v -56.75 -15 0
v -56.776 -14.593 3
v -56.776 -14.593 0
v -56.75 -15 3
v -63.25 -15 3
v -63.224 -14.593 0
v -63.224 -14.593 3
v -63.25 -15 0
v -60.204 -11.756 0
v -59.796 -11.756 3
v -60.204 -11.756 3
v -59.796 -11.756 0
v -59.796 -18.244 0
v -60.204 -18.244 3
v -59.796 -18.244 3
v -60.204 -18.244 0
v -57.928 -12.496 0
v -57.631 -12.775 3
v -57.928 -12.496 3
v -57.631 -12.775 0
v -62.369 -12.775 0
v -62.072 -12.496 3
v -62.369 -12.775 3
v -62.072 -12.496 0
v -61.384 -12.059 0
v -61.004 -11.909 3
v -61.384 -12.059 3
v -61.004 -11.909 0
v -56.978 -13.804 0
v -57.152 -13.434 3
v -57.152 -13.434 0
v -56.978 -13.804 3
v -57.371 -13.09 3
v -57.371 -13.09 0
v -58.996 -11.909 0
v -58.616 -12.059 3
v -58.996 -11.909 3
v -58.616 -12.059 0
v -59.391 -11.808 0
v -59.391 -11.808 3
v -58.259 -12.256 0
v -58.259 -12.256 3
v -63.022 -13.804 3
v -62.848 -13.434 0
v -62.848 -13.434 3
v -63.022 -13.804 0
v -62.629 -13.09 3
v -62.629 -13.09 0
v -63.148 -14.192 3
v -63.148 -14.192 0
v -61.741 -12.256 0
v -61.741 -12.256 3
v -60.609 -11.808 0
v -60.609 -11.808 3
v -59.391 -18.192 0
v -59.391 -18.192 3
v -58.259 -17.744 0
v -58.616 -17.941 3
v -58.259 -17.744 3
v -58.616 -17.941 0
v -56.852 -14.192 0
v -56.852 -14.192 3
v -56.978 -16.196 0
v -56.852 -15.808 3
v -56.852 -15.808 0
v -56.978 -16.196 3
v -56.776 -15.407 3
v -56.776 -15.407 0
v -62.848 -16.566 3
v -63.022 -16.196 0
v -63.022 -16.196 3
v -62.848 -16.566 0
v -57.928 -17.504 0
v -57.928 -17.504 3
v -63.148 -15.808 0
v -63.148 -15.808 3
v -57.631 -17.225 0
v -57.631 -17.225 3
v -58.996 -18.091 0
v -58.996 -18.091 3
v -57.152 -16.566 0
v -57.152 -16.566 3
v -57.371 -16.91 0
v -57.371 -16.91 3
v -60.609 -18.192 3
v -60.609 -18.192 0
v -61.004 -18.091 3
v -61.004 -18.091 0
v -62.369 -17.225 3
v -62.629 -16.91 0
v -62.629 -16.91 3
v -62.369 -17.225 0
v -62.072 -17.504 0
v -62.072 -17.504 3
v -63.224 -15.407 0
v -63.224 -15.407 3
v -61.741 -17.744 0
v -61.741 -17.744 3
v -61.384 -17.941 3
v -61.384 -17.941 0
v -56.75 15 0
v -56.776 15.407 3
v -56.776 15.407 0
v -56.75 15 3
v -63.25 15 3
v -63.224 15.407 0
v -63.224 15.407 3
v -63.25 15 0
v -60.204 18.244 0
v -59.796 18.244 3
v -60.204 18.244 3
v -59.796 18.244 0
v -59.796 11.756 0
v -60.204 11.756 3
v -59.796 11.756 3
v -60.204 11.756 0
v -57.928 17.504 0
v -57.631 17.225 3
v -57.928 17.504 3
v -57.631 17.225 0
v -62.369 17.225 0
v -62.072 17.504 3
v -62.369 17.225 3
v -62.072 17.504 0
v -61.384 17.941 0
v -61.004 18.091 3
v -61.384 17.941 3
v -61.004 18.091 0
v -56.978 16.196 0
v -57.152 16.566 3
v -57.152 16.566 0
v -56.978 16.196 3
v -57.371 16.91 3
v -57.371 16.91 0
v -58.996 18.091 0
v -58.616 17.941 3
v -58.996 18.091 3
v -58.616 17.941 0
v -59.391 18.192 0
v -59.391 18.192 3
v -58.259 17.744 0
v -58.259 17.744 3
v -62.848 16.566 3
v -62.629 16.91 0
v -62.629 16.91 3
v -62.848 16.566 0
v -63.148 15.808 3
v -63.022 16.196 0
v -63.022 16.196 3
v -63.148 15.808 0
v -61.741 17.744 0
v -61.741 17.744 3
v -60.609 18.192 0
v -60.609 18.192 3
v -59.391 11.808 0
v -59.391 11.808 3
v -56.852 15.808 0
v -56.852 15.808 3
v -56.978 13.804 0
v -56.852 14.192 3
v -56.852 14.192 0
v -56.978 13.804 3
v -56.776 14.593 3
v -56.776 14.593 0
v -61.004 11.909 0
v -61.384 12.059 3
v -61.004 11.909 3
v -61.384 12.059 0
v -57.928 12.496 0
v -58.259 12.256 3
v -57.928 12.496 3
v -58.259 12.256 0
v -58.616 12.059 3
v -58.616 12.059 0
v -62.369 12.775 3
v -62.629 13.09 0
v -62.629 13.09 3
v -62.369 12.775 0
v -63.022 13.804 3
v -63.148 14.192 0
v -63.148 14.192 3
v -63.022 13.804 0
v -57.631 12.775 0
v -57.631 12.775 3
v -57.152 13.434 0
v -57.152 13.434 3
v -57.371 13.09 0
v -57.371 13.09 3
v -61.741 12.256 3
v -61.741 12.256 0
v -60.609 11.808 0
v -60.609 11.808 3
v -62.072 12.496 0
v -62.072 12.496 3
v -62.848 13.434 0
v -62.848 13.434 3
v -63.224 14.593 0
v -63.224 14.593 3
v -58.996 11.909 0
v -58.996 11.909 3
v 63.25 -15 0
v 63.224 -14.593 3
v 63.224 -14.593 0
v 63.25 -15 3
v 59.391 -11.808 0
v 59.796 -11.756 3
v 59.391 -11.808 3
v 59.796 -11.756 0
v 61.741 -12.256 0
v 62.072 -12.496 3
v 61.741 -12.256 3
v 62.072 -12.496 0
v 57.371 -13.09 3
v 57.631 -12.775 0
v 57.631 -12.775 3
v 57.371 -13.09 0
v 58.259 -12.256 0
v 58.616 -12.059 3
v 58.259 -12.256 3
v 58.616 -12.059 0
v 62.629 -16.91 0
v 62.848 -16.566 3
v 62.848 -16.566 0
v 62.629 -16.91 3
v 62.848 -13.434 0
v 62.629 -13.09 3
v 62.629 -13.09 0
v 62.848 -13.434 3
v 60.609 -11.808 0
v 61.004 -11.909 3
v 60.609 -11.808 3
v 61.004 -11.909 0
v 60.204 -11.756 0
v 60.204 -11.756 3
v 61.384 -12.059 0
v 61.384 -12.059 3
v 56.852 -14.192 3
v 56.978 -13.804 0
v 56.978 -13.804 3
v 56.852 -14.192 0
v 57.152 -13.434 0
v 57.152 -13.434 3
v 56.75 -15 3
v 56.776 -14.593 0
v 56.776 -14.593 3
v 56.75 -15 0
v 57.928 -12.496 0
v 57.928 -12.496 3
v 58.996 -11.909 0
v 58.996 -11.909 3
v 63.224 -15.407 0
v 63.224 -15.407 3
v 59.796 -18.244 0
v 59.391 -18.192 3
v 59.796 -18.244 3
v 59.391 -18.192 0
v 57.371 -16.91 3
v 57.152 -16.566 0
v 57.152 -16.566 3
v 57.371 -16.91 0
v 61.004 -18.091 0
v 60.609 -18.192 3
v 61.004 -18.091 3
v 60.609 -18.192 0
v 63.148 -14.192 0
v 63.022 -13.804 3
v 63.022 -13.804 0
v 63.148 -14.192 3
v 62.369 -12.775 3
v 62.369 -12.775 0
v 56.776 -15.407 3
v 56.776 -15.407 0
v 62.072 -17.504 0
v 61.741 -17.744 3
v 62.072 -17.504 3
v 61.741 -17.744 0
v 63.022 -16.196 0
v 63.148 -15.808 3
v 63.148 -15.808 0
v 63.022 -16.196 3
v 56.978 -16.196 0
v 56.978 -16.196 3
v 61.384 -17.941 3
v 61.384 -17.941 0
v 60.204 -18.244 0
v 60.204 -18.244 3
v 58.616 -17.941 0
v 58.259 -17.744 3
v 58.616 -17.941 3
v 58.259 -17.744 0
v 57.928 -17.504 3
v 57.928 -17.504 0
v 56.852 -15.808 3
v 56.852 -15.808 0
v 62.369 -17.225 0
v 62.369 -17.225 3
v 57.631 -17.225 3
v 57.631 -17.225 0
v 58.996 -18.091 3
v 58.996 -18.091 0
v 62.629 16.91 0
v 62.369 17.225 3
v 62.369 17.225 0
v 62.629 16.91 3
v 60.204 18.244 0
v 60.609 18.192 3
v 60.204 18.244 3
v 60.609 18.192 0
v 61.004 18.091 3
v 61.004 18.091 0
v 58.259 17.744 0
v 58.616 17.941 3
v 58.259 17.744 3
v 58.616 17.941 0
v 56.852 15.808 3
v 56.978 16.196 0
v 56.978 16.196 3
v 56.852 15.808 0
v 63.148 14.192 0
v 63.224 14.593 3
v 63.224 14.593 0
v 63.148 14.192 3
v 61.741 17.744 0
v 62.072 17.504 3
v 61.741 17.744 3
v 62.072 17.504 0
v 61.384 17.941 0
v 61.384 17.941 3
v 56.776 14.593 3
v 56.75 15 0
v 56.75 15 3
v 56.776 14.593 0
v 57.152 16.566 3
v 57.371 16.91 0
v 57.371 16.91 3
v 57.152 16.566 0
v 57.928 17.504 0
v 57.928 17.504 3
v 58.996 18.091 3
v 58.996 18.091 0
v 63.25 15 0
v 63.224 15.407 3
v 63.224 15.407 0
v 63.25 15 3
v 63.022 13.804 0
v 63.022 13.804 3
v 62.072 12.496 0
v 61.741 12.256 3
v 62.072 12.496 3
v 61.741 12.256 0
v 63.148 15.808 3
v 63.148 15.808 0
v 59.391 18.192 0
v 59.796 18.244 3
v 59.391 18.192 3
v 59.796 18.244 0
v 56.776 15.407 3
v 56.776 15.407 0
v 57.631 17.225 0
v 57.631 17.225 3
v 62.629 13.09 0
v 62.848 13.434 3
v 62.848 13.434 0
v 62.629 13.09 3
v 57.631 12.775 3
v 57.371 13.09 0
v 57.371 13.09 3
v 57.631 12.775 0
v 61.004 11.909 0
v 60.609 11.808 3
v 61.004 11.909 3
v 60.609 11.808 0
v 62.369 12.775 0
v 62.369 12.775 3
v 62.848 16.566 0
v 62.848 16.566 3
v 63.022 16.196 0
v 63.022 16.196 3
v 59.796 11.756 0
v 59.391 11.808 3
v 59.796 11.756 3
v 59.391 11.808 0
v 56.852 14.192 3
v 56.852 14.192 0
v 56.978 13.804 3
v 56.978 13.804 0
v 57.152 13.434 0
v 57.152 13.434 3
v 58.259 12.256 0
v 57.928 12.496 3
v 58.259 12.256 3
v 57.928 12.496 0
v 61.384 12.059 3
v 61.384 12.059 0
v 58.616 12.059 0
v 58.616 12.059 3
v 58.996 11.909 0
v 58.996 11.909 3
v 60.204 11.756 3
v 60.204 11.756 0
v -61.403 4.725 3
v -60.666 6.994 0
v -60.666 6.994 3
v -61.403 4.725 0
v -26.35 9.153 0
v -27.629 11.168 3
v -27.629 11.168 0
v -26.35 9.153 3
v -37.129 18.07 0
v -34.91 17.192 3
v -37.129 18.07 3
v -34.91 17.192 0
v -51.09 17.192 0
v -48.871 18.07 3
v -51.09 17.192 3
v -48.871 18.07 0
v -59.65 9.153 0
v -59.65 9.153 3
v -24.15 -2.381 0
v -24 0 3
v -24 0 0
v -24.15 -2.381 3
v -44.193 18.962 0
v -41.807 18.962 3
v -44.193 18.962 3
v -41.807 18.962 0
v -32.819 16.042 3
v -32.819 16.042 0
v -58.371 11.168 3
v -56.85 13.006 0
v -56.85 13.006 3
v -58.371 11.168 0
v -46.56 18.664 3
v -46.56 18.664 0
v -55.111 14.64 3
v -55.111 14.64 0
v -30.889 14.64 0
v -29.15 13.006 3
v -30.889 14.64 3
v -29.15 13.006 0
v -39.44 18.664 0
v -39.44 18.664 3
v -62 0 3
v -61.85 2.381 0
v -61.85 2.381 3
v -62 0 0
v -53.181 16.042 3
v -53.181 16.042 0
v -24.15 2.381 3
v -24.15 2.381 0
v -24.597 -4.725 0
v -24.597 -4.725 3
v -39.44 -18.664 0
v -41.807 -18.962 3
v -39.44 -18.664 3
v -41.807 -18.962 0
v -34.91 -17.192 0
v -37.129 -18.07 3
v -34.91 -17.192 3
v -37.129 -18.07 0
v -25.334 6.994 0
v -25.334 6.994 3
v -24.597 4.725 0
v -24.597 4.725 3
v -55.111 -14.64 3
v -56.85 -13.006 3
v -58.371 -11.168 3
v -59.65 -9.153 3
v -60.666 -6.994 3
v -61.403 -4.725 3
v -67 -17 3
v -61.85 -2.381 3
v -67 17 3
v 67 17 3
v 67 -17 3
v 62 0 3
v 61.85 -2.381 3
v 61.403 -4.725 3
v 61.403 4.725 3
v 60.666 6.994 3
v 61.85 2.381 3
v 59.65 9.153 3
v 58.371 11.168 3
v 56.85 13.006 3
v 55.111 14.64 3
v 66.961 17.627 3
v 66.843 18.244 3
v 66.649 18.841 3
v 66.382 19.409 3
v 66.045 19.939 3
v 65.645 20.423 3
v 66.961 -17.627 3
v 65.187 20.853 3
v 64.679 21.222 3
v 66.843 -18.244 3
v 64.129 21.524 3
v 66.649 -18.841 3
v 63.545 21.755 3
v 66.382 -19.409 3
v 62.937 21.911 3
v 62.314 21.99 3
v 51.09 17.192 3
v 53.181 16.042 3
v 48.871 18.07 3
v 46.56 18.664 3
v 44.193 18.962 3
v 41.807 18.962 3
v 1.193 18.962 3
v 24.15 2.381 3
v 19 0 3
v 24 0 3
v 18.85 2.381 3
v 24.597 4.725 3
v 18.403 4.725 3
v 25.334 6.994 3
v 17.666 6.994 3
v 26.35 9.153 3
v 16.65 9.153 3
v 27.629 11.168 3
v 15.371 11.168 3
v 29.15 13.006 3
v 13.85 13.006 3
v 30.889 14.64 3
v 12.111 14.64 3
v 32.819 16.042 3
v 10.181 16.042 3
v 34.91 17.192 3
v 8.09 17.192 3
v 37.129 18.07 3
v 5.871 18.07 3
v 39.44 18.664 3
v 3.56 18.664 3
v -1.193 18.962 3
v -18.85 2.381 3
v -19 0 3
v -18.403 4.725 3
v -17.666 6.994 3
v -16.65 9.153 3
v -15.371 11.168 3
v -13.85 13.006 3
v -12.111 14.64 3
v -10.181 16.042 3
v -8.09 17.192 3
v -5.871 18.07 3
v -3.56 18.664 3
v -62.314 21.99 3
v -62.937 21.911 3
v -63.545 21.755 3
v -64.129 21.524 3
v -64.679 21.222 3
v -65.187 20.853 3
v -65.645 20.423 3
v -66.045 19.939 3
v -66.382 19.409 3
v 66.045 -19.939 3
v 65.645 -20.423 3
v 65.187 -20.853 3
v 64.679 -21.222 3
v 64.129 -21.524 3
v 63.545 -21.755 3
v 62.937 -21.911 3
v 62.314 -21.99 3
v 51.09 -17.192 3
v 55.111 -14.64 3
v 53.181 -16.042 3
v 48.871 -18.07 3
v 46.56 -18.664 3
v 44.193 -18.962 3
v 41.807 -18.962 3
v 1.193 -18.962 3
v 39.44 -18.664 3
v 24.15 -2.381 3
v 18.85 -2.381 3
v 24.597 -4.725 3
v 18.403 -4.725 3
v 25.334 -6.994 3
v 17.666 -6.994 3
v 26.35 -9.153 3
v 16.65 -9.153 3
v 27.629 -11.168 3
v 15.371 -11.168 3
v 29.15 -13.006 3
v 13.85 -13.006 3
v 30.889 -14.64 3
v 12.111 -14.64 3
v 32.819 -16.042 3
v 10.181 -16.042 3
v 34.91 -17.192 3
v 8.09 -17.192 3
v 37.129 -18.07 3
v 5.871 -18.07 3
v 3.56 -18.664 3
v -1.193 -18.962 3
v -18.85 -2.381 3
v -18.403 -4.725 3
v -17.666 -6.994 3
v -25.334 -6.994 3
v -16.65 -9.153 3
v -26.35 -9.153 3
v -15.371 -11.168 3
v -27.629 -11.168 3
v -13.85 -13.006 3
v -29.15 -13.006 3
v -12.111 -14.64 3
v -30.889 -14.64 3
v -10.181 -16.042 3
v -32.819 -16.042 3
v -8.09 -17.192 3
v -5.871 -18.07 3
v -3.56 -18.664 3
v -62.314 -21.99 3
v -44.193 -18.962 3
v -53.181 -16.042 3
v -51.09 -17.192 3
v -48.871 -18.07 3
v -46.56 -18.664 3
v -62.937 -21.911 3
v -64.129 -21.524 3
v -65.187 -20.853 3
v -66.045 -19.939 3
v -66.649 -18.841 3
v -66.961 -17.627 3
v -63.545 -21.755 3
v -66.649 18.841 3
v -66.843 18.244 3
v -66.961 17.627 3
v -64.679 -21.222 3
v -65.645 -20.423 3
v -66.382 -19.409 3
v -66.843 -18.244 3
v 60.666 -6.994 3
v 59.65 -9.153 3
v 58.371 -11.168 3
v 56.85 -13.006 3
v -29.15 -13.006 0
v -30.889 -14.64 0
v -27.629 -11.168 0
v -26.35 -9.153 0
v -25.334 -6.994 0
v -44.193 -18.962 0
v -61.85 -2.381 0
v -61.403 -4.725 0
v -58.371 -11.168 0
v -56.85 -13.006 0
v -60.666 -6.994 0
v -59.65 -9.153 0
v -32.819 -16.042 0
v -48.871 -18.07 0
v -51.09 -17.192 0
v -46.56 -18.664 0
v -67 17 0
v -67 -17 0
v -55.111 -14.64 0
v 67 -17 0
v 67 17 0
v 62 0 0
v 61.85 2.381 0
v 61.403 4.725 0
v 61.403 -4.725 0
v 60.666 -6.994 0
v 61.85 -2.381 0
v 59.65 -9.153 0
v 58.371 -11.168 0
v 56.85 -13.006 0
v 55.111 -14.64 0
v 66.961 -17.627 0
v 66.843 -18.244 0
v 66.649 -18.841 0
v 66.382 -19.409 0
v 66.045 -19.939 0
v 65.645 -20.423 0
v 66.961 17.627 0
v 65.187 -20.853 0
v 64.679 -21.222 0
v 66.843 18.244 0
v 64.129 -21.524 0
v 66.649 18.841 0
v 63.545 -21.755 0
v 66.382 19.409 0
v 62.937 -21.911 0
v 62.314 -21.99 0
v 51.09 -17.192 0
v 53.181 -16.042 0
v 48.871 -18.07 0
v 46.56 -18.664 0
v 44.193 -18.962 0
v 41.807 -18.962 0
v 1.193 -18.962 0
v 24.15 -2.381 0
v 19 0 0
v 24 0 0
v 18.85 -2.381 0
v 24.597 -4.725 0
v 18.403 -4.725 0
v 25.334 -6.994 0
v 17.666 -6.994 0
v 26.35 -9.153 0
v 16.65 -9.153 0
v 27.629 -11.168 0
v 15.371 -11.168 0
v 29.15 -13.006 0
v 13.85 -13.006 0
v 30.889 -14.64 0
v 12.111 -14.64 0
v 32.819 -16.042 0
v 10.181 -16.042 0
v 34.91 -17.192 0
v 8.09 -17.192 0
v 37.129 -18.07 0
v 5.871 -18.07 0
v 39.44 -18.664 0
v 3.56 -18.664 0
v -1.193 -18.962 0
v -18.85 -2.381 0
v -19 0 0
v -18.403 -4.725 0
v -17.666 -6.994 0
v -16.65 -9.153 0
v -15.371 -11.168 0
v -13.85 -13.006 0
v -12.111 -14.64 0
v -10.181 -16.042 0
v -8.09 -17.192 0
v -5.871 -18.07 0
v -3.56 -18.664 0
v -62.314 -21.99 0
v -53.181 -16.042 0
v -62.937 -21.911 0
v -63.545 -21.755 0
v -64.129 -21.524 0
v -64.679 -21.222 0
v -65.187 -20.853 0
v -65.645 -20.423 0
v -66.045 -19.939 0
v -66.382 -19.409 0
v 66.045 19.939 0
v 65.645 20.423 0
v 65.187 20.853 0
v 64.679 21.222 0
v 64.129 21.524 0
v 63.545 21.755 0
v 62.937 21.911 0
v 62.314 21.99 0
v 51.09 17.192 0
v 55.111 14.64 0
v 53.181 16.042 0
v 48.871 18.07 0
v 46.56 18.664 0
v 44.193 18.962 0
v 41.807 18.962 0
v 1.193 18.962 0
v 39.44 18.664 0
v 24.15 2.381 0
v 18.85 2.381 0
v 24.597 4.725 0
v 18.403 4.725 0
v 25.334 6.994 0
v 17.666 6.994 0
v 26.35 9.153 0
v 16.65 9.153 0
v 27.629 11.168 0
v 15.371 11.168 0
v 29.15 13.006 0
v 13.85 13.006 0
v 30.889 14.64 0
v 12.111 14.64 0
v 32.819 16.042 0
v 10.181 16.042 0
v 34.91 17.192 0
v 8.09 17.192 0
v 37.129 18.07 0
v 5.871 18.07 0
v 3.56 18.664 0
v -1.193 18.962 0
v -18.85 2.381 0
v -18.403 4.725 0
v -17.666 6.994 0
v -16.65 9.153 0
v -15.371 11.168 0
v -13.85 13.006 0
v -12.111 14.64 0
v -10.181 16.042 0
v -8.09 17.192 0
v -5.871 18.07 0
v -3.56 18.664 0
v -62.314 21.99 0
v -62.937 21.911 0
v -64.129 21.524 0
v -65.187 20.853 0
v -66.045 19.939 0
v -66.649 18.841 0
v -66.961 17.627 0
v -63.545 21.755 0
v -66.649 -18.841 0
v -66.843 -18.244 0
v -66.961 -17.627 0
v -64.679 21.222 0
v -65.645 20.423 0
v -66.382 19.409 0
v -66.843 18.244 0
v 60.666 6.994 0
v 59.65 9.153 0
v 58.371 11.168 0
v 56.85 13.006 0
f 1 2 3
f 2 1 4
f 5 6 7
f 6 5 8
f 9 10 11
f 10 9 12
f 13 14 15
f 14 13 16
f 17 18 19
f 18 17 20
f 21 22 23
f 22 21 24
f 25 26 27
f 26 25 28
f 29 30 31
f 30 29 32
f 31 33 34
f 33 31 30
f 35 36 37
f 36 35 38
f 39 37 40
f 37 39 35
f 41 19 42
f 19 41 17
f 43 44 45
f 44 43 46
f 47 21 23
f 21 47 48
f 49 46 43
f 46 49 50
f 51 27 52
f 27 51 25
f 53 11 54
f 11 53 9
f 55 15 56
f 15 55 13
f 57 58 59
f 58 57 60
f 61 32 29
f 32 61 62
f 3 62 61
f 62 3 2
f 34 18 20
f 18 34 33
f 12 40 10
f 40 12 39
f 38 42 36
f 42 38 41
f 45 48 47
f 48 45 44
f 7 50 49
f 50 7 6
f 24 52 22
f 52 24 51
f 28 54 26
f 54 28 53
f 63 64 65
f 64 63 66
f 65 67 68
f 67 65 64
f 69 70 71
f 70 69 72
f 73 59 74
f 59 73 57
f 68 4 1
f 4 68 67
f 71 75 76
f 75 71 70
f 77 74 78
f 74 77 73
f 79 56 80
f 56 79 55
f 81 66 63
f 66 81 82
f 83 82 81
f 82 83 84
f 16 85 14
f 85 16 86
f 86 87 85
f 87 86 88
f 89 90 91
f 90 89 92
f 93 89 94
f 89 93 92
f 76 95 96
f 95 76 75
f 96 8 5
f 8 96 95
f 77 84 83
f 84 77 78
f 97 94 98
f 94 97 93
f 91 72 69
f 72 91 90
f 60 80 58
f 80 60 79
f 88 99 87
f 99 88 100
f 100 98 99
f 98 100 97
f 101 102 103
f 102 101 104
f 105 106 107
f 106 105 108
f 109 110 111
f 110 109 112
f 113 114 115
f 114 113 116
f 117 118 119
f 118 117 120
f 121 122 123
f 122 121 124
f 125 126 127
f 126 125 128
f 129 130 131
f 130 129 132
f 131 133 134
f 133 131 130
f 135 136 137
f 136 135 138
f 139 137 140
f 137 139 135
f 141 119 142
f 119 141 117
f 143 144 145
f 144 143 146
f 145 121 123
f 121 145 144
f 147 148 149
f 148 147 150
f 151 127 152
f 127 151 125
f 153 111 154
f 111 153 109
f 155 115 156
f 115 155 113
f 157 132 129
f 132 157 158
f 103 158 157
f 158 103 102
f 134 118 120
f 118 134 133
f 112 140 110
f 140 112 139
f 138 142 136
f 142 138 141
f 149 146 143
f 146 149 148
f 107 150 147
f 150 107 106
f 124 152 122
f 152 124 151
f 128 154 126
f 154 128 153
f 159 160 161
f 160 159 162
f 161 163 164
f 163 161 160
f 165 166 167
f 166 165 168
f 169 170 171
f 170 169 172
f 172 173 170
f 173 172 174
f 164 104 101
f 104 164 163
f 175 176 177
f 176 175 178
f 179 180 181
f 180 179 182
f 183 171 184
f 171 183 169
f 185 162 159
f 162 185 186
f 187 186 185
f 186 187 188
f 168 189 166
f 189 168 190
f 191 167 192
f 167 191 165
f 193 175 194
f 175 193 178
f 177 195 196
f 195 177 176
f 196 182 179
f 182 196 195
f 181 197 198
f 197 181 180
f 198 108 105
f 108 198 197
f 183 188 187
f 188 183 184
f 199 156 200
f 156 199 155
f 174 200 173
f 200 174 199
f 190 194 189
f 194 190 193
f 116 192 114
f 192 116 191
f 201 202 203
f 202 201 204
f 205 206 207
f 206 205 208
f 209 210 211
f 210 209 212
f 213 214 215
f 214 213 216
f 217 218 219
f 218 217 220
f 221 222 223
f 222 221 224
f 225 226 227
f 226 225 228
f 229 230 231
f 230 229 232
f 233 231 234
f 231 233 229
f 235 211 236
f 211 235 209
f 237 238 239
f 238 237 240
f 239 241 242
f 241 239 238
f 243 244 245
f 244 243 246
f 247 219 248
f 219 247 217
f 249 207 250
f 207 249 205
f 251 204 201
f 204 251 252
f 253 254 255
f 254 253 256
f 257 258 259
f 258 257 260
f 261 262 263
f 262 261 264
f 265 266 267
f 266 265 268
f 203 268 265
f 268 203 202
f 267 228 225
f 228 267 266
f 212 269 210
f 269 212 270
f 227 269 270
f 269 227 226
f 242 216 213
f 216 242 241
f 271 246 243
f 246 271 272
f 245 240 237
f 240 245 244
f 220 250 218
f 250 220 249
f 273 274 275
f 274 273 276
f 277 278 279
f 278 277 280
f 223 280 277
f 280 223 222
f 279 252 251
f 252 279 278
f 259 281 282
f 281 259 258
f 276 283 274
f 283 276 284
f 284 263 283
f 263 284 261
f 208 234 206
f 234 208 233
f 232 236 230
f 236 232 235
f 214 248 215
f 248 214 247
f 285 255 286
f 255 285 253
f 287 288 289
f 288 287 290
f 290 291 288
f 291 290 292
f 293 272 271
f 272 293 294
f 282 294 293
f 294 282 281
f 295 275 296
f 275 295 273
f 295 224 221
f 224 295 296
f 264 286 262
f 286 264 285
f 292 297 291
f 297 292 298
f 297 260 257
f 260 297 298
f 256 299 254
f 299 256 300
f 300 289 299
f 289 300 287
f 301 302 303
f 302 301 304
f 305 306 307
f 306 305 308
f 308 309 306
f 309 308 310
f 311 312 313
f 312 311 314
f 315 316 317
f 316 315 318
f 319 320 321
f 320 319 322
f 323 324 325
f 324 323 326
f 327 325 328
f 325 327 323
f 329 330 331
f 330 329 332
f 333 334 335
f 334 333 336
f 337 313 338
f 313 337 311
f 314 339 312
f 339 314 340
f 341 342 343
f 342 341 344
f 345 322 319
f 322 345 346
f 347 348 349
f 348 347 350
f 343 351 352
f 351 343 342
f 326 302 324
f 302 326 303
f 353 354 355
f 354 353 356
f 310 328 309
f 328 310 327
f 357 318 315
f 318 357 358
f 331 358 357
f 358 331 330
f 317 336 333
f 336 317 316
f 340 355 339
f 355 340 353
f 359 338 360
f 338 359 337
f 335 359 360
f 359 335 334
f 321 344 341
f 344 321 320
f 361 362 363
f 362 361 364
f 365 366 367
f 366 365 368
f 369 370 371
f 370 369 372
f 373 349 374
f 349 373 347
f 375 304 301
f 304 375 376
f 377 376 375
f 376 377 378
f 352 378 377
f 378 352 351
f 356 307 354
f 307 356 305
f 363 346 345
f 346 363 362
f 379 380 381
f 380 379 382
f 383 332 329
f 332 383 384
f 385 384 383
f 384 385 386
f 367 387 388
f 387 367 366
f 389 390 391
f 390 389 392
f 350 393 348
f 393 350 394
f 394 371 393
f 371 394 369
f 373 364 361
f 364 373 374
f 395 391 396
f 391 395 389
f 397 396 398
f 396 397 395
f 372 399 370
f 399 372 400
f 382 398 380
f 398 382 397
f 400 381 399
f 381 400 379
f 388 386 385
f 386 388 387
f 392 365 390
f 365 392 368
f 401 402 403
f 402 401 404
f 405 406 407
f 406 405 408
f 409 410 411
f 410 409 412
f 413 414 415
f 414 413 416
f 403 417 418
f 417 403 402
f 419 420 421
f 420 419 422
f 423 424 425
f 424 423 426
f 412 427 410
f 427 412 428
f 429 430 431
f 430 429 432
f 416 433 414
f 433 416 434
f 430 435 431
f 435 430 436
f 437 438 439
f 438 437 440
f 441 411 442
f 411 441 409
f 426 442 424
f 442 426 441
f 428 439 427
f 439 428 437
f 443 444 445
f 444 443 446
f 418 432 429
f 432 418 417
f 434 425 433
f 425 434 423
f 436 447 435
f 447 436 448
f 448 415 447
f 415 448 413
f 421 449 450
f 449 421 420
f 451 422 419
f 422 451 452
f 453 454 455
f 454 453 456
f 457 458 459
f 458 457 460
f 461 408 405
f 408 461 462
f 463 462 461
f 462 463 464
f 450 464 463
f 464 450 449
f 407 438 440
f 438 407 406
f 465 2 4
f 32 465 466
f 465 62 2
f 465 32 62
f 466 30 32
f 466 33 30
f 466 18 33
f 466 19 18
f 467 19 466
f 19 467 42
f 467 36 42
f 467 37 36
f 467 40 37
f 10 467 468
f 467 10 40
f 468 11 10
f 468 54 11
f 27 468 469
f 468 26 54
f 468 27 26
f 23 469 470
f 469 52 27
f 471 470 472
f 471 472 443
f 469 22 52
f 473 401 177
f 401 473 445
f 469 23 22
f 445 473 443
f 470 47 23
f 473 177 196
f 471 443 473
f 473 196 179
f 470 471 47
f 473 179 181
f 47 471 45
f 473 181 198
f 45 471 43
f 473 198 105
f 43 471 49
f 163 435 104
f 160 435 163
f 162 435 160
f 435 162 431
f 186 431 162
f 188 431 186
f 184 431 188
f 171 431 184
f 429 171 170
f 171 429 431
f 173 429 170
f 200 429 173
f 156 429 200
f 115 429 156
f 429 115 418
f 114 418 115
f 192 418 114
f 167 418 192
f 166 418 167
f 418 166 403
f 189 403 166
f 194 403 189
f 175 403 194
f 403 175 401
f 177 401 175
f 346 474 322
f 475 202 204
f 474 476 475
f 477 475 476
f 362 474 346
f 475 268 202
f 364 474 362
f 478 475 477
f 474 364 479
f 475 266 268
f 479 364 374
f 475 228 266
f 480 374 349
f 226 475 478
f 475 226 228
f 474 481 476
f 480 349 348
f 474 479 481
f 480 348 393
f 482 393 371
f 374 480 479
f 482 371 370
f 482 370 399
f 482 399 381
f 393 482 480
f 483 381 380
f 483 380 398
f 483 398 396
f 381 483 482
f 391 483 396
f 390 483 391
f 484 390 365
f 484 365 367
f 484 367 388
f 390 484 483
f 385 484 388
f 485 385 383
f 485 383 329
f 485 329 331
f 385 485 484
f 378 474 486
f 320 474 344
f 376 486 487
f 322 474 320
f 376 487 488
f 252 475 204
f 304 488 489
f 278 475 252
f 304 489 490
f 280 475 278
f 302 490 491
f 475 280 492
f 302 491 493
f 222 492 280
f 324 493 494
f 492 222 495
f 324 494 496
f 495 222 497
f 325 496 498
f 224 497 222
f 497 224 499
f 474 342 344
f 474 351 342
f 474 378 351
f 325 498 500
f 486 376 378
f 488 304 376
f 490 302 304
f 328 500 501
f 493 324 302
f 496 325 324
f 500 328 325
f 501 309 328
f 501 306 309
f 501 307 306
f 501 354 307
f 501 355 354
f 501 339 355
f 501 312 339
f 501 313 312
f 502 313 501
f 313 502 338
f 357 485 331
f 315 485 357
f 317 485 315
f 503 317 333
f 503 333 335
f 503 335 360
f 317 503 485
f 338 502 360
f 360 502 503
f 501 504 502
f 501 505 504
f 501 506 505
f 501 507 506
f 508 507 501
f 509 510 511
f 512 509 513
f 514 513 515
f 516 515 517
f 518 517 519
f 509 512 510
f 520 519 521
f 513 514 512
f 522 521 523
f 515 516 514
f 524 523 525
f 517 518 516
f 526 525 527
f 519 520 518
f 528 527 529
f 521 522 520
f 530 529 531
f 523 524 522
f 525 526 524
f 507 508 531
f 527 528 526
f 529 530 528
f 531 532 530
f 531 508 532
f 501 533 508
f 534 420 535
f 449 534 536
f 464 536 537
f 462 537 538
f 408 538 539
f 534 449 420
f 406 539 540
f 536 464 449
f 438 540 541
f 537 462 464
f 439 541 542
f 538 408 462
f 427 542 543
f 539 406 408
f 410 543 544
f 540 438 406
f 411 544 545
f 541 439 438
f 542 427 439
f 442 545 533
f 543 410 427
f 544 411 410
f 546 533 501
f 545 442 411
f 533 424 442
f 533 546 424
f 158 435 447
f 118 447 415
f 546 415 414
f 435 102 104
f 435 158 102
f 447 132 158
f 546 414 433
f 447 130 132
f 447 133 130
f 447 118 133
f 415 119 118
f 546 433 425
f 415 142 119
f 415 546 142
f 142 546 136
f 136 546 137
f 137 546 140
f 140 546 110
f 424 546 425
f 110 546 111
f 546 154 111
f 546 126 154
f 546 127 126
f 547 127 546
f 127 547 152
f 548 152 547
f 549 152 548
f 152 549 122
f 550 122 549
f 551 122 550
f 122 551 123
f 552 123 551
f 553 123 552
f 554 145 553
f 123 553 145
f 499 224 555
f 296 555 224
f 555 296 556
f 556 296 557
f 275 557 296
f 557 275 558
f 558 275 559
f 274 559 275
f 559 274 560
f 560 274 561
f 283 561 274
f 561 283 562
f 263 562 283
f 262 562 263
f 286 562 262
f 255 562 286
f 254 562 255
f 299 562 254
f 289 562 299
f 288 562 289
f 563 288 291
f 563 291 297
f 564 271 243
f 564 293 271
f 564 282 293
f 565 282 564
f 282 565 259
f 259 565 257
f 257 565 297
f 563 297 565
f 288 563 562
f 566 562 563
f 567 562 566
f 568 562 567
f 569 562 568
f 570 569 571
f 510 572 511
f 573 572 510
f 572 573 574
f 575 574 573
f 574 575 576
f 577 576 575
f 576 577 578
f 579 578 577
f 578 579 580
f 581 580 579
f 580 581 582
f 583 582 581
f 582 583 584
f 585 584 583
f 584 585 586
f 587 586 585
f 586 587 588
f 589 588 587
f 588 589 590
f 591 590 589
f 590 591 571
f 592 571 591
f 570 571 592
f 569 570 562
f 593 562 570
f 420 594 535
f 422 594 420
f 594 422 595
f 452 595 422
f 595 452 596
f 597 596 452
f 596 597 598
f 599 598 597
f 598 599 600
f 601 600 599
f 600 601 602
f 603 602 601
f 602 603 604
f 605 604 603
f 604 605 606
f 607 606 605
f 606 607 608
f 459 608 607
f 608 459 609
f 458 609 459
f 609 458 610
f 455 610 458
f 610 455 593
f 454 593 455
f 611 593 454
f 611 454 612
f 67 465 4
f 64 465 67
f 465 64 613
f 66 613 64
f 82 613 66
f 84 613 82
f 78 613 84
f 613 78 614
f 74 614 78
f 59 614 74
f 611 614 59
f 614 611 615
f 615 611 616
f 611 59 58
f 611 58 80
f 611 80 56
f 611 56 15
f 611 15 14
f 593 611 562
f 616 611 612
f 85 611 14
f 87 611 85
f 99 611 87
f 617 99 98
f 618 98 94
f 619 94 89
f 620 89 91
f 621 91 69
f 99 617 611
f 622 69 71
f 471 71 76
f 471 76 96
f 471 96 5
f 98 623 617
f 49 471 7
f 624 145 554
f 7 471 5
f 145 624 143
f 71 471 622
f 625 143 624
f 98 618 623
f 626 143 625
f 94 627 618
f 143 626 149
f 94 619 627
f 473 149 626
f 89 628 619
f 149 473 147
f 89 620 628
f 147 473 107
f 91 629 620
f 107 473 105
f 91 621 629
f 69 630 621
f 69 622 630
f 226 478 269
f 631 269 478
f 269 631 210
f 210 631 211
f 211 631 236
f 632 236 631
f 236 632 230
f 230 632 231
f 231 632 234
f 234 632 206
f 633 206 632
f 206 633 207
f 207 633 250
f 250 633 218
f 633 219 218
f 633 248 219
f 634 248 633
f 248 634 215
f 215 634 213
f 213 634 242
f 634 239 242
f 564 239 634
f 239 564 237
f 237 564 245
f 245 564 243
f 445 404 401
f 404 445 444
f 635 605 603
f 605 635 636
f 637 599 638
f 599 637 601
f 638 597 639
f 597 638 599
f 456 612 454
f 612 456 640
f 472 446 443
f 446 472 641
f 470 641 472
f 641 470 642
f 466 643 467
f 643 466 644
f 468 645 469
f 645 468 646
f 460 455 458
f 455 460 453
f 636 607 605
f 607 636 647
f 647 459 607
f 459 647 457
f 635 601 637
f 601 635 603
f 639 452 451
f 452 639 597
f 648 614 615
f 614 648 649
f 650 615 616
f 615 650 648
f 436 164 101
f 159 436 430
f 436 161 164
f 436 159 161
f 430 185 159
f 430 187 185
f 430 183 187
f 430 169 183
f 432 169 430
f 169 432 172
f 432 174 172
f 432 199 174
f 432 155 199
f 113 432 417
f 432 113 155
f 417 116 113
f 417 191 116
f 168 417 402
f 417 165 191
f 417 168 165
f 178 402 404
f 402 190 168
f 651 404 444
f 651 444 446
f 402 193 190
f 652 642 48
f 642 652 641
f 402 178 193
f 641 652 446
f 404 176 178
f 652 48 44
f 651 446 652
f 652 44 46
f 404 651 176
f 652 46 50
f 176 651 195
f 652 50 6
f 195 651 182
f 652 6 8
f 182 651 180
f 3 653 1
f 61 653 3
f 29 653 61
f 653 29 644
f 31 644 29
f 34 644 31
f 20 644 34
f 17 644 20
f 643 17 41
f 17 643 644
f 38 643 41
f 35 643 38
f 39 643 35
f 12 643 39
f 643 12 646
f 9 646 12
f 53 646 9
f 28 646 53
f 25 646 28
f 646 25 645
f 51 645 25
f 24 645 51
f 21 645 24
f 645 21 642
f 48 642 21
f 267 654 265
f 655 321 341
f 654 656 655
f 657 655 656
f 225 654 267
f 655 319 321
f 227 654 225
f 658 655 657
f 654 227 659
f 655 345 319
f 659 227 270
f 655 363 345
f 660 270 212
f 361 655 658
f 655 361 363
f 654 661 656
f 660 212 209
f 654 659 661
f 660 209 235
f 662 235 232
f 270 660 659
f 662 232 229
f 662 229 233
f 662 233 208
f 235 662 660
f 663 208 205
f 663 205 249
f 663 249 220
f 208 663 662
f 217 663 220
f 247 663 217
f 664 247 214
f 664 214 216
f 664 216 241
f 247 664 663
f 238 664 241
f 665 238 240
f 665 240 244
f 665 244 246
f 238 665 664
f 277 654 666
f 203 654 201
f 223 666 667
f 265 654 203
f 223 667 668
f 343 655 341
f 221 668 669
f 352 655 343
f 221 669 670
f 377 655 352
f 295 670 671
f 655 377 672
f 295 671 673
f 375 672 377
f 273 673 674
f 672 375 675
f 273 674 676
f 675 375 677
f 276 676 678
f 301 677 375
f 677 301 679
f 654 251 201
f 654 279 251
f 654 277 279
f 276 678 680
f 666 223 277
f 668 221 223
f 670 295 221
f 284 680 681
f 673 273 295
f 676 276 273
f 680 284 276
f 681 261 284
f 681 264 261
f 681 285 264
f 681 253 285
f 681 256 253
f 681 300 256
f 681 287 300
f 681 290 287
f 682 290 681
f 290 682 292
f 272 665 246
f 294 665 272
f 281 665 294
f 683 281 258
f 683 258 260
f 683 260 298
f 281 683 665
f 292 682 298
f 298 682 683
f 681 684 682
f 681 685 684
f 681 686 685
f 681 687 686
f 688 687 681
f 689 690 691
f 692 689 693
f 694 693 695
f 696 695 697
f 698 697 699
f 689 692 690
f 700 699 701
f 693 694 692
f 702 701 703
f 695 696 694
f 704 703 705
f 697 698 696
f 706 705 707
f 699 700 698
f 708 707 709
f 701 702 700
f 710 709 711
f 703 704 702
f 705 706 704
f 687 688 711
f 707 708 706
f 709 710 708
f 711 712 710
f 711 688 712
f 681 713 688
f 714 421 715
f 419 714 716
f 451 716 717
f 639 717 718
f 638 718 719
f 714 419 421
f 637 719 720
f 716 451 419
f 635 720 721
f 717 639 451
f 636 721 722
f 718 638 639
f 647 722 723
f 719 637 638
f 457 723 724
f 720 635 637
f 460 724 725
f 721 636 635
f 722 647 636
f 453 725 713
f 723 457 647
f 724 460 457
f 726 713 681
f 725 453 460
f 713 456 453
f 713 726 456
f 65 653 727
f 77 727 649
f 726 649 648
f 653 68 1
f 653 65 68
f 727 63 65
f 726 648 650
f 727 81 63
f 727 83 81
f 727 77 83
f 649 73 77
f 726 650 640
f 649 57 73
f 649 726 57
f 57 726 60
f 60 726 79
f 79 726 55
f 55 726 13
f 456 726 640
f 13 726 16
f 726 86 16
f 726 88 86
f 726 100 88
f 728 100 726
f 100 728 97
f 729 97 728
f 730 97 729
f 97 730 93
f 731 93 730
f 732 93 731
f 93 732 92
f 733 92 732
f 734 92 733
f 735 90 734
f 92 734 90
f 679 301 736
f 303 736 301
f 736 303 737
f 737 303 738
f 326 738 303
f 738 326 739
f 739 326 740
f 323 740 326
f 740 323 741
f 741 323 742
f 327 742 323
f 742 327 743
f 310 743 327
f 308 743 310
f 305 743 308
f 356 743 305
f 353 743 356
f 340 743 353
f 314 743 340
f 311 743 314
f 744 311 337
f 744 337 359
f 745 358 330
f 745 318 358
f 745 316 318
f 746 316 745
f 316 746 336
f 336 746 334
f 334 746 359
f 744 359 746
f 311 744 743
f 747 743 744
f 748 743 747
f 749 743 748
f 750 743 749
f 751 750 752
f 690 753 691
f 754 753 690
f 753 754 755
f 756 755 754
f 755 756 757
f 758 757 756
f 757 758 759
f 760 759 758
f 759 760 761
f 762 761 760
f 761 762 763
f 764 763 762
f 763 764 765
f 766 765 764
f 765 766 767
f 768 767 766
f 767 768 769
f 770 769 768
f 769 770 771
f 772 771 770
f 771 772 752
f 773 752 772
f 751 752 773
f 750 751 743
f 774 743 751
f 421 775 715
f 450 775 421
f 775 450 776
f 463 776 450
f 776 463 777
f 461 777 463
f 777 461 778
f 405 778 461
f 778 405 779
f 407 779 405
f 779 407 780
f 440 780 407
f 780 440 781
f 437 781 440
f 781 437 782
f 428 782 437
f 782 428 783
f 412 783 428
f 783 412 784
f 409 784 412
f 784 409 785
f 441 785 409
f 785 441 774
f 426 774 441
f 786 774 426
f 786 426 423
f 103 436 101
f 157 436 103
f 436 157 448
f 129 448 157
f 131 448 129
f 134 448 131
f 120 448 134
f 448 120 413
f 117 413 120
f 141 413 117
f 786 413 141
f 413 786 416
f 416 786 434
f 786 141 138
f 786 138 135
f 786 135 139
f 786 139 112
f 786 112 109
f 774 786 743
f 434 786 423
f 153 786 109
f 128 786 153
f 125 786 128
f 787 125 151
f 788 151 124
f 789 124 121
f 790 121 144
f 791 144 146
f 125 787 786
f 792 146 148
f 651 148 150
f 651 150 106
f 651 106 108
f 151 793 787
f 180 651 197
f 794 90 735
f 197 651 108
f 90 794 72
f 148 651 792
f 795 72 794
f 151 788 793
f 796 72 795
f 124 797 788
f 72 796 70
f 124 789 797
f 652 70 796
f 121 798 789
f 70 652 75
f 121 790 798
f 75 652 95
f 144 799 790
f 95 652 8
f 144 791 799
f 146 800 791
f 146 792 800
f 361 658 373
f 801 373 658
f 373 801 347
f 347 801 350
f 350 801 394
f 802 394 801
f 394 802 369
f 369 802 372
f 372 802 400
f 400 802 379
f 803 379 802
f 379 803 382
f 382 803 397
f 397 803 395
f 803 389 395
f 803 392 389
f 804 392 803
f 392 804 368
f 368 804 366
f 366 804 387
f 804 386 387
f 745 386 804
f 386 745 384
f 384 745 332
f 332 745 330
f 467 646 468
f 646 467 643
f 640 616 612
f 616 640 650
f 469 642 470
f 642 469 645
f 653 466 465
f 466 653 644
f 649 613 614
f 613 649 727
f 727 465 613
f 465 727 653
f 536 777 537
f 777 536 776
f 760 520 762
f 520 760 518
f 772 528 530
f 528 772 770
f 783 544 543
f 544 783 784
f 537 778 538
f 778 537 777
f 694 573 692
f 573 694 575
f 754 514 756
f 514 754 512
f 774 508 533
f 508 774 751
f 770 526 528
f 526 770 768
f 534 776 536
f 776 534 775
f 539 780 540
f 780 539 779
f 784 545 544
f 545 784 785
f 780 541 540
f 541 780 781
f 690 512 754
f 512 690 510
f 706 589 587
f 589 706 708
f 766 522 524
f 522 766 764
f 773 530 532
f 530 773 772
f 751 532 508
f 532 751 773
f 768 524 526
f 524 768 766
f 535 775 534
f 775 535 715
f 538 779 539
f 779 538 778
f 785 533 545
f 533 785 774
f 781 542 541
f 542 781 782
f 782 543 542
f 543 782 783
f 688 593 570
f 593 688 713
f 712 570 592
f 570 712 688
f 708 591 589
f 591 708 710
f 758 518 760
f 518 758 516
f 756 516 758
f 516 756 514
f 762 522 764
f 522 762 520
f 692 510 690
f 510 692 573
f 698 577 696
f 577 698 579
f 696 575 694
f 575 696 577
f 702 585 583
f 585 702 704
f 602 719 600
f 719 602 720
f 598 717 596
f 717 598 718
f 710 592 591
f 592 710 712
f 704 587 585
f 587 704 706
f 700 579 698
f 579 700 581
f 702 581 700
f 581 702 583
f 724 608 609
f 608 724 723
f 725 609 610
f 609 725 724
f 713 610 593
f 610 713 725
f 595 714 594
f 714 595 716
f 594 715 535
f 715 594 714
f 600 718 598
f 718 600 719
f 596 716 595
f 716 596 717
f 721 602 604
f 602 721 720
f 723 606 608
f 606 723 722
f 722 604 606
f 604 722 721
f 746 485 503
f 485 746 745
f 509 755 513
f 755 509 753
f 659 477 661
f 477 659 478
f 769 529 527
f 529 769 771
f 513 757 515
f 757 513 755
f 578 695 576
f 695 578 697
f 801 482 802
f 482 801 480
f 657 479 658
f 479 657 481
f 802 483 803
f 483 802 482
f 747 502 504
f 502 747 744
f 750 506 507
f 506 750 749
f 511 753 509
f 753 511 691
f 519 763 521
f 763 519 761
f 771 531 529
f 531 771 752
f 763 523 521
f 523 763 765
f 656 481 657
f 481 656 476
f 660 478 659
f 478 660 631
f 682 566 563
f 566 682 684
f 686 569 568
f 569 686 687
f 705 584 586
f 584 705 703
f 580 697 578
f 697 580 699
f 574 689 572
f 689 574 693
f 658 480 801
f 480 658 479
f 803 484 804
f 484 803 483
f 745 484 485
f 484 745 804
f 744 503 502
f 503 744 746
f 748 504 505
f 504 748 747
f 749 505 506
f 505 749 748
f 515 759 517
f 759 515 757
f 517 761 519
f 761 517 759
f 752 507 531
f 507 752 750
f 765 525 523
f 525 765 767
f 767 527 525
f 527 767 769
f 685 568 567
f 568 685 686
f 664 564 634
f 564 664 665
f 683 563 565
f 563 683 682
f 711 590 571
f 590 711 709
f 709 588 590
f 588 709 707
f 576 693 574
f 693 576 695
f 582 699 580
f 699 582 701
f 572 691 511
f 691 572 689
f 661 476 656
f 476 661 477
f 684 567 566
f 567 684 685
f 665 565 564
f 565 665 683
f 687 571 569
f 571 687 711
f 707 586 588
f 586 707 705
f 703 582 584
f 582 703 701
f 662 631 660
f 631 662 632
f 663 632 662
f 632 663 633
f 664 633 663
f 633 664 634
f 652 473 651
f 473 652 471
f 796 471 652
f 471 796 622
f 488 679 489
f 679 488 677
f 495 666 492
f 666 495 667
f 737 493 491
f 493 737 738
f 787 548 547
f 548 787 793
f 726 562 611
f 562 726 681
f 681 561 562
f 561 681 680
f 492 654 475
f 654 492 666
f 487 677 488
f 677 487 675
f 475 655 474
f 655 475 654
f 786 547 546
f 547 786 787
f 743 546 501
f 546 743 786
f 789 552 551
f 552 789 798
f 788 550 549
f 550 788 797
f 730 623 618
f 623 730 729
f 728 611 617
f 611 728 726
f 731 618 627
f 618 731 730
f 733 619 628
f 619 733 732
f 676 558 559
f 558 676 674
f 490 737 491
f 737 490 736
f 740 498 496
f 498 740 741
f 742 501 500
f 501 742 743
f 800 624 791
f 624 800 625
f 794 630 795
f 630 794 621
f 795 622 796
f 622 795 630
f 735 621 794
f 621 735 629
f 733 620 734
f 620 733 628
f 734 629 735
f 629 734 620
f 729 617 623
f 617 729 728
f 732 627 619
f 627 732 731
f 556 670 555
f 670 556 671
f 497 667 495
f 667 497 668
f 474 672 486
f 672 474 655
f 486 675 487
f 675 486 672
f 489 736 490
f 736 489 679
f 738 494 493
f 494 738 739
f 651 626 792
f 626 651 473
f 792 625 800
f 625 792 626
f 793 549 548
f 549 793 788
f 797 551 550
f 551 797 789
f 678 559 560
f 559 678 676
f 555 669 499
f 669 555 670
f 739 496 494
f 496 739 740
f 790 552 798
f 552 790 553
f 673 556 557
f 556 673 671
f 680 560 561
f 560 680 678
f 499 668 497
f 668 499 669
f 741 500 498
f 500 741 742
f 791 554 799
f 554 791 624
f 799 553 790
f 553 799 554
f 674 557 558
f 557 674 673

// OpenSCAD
$fn = 50;


difference() {
	union() {
		hull() {
			translate(v = [-62.0000000000, 17.0000000000, 0]) {
				cylinder(h = 3, r = 5);
			}
			translate(v = [62.0000000000, 17.0000000000, 0]) {
				cylinder(h = 3, r = 5);
			}
			translate(v = [-62.0000000000, -17.0000000000, 0]) {
				cylinder(h = 3, r = 5);
			}
			translate(v = [62.0000000000, -17.0000000000, 0]) {
				cylinder(h = 3, r = 5);
			}
		}
	}
	union() {
		#translate(v = [-60.0000000000, -15.0000000000, -100.0000000000]) {
			cylinder(h = 200, r = 3.2500000000);
		}
		#translate(v = [-60.0000000000, 15.0000000000, -100.0000000000]) {
			cylinder(h = 200, r = 3.2500000000);
		}
		#translate(v = [60.0000000000, -15.0000000000, -100.0000000000]) {
			cylinder(h = 200, r = 3.2500000000);
		}
		#translate(v = [60.0000000000, 15.0000000000, -100.0000000000]) {
			cylinder(h = 200, r = 3.2500000000);
		}
		#translate(v = [-43.0000000000, 0, 0]) {
			cylinder(h = 3, r = 19.0000000000);
		}
		#cylinder(h = 3, r = 19.0000000000);
		#translate(v = [43.0000000000, 0, 0]) {
			cylinder(h = 3, r = 19.0000000000);
		}
	}
}
